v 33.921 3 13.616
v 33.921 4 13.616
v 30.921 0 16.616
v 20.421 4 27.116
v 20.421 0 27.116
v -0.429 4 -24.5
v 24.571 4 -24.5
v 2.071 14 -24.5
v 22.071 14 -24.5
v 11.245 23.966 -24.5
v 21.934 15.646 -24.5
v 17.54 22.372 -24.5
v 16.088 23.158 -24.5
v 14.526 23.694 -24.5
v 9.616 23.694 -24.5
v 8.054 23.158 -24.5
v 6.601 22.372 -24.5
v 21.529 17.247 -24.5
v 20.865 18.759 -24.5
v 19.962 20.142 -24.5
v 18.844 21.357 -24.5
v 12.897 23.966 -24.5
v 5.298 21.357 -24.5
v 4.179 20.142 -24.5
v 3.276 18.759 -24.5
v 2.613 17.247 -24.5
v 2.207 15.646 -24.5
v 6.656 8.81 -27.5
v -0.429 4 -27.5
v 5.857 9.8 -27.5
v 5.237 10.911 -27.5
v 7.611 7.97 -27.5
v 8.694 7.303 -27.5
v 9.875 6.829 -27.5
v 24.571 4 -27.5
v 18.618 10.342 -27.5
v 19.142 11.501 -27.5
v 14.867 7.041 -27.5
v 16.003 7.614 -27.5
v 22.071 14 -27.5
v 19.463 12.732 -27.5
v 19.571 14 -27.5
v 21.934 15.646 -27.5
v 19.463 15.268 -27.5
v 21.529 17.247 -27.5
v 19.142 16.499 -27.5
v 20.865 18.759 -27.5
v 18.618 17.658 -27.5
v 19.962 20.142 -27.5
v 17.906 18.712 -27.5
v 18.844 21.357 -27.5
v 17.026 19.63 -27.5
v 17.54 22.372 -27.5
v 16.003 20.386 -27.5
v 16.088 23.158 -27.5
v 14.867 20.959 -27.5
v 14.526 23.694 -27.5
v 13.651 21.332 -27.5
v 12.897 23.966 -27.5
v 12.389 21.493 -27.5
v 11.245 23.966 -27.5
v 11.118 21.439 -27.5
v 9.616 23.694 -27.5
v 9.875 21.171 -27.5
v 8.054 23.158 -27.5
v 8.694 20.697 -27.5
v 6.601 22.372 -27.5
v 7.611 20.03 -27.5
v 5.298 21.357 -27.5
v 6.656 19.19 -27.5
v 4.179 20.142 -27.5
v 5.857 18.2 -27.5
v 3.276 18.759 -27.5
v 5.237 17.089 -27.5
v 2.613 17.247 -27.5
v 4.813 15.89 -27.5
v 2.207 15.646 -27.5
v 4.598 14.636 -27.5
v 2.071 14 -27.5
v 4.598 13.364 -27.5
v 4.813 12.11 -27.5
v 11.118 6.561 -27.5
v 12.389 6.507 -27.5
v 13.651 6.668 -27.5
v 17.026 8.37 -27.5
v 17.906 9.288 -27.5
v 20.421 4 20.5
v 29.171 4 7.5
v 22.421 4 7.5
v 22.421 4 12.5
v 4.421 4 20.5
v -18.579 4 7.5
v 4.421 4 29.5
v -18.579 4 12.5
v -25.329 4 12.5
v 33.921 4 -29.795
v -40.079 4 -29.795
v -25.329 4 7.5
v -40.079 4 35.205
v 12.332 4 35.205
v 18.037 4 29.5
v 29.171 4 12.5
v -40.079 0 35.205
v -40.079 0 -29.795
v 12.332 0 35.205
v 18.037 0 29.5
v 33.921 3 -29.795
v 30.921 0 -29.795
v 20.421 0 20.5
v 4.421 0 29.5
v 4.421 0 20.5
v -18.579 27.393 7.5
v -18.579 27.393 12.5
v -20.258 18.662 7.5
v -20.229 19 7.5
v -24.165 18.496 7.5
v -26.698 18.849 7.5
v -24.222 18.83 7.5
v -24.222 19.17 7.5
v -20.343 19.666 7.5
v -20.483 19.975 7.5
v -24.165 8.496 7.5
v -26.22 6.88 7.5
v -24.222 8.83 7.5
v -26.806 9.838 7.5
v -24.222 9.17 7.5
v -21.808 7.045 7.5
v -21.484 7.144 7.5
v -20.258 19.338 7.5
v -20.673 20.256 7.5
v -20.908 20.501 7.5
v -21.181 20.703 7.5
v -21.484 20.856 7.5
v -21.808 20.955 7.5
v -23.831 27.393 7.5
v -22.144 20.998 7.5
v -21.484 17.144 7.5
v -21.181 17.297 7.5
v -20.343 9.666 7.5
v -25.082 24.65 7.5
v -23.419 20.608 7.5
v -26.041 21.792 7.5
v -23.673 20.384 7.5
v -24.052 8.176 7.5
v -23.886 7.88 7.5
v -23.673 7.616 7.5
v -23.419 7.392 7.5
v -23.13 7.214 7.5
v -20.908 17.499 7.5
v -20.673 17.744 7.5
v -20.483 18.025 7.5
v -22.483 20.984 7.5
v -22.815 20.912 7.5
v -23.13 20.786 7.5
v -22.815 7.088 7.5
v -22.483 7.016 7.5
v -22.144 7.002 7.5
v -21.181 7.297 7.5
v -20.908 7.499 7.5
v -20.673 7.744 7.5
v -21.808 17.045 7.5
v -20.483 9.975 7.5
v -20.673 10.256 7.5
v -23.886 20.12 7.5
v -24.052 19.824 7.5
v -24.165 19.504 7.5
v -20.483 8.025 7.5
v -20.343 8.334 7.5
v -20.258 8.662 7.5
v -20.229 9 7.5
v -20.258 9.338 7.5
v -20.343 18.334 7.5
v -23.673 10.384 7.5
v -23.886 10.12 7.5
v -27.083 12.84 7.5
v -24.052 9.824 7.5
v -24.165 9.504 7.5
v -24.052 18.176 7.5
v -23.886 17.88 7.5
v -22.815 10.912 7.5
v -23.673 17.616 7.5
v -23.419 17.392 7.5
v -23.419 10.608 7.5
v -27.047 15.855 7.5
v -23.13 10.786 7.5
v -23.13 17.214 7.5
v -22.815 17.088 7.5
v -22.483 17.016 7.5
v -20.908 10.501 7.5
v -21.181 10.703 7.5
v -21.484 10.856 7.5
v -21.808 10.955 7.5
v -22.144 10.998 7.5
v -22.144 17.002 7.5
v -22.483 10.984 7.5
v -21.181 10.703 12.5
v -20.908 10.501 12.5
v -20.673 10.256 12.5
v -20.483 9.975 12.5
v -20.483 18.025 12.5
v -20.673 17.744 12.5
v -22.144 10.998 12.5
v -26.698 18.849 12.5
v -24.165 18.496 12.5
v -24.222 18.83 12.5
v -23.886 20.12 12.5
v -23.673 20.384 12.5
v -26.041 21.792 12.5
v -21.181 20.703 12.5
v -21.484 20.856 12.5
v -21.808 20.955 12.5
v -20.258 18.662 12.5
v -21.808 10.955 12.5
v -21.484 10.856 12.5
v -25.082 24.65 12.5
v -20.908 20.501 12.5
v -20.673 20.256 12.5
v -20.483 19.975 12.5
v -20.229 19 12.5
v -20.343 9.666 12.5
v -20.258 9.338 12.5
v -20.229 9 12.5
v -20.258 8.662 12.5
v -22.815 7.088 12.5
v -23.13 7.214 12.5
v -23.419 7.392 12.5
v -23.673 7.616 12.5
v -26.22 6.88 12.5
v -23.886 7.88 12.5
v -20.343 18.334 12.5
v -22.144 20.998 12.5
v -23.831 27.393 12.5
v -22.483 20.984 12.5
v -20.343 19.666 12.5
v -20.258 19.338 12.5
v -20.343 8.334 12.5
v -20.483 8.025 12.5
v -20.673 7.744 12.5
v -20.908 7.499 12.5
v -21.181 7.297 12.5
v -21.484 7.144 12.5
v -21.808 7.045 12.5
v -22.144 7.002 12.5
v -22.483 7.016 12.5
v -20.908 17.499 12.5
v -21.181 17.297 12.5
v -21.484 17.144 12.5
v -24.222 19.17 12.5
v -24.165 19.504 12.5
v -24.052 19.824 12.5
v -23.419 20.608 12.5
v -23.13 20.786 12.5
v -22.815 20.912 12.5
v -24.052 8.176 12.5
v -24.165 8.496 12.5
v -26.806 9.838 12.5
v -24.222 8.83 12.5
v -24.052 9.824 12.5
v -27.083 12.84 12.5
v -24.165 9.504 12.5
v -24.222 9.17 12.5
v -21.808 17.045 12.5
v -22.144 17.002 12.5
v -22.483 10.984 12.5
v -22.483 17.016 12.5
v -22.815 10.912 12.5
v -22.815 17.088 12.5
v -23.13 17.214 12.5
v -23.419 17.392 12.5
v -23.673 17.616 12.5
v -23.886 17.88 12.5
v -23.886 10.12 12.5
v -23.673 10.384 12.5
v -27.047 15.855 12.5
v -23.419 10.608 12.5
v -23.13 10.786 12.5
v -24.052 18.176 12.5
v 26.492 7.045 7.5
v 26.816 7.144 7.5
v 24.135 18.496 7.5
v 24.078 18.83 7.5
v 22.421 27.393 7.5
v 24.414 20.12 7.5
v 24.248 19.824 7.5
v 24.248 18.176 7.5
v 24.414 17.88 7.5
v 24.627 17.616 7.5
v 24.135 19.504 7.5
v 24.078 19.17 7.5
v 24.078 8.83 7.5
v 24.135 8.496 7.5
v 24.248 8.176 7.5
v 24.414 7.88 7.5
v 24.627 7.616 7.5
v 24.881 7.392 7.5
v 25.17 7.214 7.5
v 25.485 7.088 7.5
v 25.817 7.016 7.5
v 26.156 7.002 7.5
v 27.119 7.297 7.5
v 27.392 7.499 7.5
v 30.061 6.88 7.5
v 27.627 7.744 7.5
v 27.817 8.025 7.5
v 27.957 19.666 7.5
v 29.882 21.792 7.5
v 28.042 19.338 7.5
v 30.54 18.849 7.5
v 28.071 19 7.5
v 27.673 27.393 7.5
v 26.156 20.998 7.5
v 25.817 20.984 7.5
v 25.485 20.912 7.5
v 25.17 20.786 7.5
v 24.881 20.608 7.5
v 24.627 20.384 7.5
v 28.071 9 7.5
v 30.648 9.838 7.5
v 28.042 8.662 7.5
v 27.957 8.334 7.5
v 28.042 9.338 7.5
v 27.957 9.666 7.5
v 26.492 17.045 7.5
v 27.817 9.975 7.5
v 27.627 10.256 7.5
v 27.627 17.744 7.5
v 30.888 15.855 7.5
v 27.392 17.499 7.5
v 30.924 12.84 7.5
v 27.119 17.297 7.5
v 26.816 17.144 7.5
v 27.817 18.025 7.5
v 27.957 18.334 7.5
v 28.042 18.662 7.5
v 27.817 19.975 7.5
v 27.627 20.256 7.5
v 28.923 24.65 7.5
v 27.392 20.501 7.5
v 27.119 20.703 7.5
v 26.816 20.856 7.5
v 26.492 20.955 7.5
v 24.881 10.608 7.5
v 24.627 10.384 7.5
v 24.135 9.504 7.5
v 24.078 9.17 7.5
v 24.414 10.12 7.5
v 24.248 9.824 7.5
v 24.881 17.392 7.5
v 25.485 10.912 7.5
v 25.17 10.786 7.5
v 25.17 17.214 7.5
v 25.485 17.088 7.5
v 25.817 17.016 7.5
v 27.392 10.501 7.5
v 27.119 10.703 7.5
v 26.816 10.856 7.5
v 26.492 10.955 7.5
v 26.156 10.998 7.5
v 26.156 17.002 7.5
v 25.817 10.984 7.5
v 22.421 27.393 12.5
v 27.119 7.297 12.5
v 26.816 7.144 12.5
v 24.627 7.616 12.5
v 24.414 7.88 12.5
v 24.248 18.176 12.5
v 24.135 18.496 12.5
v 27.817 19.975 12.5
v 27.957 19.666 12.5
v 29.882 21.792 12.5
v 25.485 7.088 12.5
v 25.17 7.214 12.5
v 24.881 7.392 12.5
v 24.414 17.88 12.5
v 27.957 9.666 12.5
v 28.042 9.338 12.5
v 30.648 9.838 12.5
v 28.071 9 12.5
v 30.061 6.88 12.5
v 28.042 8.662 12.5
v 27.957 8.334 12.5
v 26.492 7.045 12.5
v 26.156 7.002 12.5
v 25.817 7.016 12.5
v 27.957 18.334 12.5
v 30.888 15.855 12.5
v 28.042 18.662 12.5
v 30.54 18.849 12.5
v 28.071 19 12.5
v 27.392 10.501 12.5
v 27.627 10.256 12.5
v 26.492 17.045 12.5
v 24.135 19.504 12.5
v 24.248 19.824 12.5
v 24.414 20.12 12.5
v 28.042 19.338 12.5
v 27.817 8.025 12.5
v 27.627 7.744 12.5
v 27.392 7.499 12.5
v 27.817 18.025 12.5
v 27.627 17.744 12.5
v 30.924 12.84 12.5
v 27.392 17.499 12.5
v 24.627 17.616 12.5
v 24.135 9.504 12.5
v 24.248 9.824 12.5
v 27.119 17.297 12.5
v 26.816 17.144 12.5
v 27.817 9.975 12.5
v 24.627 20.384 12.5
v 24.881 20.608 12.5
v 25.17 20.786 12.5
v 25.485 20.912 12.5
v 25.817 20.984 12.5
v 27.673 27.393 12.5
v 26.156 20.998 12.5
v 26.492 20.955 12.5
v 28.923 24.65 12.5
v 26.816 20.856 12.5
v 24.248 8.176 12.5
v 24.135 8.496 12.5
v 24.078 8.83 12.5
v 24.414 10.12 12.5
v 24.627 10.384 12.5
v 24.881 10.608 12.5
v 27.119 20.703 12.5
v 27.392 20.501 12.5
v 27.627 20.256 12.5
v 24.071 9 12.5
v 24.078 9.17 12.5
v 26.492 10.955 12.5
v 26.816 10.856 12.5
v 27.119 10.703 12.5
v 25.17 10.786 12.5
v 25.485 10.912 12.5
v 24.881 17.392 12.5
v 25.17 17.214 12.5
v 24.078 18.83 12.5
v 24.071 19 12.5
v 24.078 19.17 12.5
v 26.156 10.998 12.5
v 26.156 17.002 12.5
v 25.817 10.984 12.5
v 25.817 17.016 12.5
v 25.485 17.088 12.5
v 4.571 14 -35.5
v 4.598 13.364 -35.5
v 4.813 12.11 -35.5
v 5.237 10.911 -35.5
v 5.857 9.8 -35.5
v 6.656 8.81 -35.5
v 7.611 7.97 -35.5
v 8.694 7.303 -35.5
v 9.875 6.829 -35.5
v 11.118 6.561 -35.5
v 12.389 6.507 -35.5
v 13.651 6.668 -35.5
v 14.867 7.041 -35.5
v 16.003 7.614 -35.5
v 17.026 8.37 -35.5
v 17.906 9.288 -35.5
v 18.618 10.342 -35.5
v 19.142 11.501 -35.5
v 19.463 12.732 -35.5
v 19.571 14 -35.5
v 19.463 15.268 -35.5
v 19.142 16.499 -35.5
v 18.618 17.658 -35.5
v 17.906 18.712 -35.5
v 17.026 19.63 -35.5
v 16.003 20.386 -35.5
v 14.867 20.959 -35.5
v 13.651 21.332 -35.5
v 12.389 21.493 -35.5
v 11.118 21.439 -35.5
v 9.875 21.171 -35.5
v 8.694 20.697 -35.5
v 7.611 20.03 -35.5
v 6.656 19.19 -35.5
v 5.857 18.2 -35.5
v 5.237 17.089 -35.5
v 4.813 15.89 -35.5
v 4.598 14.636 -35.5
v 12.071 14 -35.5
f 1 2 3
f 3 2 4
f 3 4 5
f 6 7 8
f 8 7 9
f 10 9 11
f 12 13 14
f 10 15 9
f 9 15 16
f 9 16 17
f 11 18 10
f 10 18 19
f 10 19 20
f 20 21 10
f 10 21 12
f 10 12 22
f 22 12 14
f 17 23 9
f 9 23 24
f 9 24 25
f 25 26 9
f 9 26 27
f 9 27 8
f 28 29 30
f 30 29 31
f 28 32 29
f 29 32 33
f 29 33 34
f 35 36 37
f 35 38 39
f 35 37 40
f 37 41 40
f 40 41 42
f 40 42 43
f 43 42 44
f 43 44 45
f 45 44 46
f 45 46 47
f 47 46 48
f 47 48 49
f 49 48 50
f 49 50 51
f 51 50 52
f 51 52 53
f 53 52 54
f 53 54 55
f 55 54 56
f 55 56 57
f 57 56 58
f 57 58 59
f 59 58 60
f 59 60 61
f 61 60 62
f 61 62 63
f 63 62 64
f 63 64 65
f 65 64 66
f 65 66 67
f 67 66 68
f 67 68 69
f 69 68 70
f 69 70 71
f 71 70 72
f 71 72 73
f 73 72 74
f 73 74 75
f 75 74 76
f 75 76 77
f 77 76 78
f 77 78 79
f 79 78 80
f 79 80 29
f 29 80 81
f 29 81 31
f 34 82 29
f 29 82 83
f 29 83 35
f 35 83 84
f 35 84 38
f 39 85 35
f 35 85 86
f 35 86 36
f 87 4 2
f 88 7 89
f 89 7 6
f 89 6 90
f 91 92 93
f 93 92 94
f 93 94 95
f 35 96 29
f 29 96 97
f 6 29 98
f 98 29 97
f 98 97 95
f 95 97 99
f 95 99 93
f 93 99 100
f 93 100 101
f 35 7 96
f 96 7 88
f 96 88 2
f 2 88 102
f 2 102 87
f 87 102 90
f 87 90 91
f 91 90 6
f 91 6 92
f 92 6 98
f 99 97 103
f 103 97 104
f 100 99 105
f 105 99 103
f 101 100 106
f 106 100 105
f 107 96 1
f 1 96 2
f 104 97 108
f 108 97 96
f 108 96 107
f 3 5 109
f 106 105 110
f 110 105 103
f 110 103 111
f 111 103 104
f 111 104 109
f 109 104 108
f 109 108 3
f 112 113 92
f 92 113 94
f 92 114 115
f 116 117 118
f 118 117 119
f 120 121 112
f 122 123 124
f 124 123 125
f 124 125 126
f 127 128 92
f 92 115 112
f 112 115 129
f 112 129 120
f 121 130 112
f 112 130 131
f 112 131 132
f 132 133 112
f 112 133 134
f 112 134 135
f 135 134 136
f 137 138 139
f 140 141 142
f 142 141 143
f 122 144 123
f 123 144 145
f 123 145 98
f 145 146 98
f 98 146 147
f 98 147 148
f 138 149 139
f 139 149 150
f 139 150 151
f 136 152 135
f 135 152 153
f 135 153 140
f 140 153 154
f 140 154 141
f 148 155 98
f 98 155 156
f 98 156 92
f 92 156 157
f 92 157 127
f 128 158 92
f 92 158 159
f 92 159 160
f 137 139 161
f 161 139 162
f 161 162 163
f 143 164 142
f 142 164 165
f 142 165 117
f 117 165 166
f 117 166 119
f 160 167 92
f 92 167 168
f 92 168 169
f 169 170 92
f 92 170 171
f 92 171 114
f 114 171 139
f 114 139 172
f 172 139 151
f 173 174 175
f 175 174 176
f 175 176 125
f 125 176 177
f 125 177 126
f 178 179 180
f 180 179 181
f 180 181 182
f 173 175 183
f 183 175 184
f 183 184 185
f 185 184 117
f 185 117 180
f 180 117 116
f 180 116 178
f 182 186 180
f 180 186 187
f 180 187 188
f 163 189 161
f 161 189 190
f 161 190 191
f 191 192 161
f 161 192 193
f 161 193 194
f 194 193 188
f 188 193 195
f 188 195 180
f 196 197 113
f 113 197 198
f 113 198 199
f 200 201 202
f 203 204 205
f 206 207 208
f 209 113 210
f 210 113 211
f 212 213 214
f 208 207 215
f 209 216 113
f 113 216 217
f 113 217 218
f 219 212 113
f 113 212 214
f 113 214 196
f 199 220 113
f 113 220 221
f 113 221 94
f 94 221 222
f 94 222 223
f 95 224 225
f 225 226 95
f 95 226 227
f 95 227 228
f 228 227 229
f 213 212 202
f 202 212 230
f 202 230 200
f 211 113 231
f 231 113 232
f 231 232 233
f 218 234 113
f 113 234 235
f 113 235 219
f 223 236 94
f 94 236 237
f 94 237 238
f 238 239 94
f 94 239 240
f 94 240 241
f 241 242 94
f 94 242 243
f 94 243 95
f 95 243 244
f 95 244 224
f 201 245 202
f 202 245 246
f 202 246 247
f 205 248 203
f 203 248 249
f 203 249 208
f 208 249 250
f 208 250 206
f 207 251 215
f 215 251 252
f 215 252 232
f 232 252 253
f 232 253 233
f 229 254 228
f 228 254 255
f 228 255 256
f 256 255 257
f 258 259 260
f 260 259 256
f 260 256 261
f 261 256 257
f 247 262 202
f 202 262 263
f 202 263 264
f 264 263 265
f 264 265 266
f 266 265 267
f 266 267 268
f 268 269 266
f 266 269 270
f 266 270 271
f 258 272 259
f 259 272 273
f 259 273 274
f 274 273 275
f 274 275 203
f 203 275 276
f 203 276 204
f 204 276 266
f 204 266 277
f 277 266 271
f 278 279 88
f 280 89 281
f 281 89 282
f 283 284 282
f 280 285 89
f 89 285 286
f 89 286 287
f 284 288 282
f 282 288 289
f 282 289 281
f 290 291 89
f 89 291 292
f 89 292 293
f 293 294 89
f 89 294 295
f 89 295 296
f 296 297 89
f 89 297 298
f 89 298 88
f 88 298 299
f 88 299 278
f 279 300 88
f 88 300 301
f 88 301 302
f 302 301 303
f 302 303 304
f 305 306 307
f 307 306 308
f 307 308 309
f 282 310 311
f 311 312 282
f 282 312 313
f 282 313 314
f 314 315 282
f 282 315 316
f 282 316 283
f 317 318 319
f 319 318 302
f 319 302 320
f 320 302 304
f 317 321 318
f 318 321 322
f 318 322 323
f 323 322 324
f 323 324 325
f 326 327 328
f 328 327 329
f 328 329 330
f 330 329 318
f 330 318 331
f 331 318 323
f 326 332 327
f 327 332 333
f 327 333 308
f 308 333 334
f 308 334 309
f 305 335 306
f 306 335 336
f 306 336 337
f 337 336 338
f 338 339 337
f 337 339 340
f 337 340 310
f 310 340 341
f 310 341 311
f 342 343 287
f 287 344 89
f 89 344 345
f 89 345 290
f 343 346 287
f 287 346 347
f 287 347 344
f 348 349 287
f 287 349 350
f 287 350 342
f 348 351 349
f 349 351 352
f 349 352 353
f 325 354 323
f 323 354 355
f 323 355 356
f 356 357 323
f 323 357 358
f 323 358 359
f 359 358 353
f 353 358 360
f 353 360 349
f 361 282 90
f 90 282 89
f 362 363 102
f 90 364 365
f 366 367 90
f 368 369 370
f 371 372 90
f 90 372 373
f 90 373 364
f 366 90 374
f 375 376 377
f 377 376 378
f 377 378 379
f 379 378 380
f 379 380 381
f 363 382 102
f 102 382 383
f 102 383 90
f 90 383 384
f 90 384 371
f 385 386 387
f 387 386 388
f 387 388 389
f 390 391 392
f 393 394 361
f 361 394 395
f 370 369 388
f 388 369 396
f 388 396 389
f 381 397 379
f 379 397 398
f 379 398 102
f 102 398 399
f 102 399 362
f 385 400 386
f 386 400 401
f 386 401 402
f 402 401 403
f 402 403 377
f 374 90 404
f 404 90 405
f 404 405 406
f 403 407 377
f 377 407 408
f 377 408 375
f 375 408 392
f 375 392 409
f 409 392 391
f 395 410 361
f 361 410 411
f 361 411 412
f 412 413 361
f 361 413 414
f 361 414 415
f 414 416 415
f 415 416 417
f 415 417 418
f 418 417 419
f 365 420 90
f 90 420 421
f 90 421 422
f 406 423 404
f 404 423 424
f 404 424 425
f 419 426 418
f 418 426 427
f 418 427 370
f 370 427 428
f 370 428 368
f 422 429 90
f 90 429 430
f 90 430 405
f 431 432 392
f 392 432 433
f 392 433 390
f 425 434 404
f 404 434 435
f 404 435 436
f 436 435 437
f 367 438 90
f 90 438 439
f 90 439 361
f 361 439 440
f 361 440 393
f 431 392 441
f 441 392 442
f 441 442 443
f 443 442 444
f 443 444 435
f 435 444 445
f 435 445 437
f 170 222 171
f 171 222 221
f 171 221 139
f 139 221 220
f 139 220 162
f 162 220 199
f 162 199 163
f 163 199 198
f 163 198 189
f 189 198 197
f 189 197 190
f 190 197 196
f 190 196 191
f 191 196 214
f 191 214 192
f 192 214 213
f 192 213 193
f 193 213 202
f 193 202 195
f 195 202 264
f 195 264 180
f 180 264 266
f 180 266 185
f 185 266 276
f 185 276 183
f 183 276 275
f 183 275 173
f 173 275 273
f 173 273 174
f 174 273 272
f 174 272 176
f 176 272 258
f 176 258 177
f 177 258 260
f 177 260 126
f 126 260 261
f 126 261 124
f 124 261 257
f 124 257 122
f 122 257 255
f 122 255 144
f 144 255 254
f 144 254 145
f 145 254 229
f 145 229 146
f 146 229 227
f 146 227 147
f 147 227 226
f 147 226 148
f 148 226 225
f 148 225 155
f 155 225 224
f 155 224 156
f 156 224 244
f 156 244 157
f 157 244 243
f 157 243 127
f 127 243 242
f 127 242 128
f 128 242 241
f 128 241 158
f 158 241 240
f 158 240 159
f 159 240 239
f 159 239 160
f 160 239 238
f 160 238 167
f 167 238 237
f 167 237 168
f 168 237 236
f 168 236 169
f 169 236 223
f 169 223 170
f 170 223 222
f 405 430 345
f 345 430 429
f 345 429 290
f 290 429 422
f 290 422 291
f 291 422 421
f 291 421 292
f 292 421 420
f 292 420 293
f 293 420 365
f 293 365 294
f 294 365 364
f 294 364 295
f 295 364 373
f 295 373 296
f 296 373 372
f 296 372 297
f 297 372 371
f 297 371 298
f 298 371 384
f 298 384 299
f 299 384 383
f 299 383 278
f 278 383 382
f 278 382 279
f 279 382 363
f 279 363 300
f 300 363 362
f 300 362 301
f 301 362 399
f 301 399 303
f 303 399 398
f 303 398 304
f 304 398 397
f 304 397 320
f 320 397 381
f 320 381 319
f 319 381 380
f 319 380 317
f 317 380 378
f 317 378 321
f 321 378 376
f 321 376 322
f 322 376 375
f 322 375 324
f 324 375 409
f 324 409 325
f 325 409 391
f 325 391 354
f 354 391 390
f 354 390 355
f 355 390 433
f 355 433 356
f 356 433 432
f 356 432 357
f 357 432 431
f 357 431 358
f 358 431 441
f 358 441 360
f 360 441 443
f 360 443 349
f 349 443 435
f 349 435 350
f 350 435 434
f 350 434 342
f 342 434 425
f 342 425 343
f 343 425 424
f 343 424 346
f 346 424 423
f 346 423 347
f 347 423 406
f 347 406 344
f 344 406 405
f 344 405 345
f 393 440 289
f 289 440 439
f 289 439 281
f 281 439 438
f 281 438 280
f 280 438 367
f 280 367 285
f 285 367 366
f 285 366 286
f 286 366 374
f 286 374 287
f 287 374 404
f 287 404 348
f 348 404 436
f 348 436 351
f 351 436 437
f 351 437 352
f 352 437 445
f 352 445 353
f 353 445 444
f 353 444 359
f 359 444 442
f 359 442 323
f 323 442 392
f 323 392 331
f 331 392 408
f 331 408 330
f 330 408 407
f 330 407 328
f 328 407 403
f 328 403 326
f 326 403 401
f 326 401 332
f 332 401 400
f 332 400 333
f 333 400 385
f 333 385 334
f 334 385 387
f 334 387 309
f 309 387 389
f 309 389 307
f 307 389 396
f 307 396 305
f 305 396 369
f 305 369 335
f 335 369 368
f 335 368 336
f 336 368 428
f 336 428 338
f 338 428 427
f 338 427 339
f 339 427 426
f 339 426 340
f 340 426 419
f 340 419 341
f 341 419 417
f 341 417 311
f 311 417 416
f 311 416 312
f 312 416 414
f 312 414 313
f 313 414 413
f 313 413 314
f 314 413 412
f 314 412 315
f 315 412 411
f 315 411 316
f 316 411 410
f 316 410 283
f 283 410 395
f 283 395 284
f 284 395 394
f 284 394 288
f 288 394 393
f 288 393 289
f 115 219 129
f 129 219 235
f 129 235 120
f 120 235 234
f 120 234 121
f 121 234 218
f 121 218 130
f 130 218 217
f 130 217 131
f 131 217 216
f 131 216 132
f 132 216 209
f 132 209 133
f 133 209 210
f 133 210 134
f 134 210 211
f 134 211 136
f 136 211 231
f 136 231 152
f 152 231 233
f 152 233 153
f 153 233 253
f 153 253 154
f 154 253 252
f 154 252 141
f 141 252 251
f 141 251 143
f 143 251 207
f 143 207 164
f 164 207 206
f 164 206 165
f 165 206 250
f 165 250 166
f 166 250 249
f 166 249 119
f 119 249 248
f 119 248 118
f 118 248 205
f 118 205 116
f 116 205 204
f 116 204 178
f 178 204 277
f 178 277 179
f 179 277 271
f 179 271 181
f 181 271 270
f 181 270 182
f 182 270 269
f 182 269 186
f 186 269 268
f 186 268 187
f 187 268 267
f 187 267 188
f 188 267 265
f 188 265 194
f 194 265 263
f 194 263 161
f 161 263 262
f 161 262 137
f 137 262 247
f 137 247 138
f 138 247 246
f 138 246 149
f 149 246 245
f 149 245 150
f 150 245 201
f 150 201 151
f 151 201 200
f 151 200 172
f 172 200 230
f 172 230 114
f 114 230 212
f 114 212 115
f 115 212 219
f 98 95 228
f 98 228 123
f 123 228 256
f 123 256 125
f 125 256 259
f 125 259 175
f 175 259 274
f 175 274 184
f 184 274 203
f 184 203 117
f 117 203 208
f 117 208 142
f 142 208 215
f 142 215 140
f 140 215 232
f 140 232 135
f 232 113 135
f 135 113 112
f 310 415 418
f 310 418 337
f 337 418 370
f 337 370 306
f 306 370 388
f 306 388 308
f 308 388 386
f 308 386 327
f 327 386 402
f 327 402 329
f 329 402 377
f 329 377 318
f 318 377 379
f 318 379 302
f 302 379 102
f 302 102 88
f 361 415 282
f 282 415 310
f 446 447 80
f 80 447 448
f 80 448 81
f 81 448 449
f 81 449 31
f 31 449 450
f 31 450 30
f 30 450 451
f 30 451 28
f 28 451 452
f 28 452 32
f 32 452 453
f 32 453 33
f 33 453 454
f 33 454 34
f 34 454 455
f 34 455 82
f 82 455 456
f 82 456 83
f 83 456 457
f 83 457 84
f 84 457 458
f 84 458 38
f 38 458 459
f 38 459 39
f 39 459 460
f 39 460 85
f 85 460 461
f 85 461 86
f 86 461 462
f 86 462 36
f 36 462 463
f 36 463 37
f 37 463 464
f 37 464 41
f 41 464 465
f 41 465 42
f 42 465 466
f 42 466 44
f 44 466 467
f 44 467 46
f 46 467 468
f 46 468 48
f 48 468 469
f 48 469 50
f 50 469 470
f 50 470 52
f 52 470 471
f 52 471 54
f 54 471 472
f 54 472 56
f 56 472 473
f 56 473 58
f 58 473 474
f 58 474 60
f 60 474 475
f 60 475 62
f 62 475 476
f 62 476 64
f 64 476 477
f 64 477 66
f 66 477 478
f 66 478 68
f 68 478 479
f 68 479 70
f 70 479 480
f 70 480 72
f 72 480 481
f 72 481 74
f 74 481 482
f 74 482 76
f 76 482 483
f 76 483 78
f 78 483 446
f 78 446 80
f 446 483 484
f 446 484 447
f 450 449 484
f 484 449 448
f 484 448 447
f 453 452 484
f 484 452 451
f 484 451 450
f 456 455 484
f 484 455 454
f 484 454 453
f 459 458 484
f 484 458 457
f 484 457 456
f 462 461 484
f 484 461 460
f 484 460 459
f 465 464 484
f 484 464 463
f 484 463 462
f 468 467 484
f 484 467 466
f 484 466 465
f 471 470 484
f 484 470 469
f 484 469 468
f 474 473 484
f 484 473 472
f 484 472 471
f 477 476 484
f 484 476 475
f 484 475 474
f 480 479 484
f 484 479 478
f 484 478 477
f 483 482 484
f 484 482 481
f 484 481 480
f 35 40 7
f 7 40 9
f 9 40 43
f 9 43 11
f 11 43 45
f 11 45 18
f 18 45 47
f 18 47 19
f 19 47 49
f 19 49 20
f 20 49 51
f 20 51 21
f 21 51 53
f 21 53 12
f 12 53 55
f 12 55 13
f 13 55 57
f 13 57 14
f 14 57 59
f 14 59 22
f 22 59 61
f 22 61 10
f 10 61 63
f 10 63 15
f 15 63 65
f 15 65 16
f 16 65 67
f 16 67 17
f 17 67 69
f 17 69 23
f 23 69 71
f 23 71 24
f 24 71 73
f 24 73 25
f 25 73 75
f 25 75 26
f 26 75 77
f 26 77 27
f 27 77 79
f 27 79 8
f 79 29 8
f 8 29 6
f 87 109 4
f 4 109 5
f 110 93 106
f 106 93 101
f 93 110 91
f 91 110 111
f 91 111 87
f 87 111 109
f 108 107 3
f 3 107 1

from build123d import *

# Parameters (mm, degrees)
SALIENTE_EXTRUIR1_DEPTH = 4
CROQUIS2_W              = 6.75
CROQUIS2_H              = 5
SALIENTE_EXTRUIR2_DEPTH = 18
CROQUIS3_R              = 2
CORTAR_EXTRUIR1_DEPTH   = 10
SALIENTE_EXTRUIR3_DEPTH = 5
CROQUIS6_W              = 25
CROQUIS6_H              = 3
SALIENTE_EXTRUIR4_DEPTH = 20
CROQUIS7_R              = 7.5
SALIENTE_EXTRUIR5_DEPTH = 8
CORTAR_EXTRUIR2_DEPTH   = 3
CORTAR_EXTRUIR3_REACH   = 6
CROQUIS9_W              = 16
CROQUIS9_H              = 9
CHAFL_N1_SIZE           = 3


with BuildPart() as part:
    # Croquis1 → Saliente-Extruir1 (new body)
    with BuildSketch(Plane(origin=(0, 0, 0), x_dir=(1, 0, 0), z_dir=(0, 1, 0))):
        Polygon((12.331887662, -35.204744953), (33.9207519, -13.615880715), (33.9207519, 29.795255047), (-40.0792481, 29.795255047), (-40.0792481, -35.204744953), align=None)
    extrude(amount=SALIENTE_EXTRUIR1_DEPTH)

    # Croquis2 → Saliente-Extruir2 (add)
    with BuildSketch(Plane(origin=(0, 4, 0), x_dir=(1, 0, 0), z_dir=(0, 1, 0))):
        with Locations((-21.9542481, -10)):
            Rectangle(CROQUIS2_W, CROQUIS2_H)
        with Locations((25.7957519, -10)):
            Rectangle(CROQUIS2_W, CROQUIS2_H)
    extrude(amount=SALIENTE_EXTRUIR2_DEPTH)

    # Croquis3 → Cortar-Extruir1 (cut)
    with BuildSketch(Plane.XY.offset(12.5)):
        with Locations((-22.2292481, 9)):
            Circle(CROQUIS3_R)
        with Locations((-22.2292481, 19)):
            Circle(CROQUIS3_R)
        with Locations((26.0707519, 19)):
            Circle(CROQUIS3_R)
        with Locations((26.0707519, 9)):
            Circle(CROQUIS3_R)
    extrude(amount=-CORTAR_EXTRUIR1_DEPTH, mode=Mode.SUBTRACT)

    # Croquis5 → Saliente-Extruir3 (add)
    with BuildSketch(Plane.XY.offset(12.5)):
        with BuildLine():
            Line((-25.3292481, 4), (-25.3292481, 22))
            Line((-25.3292481, 22), (-18.5792481, 22))
            Line((-18.5792481, 22), (-18.5792481, 27.393443103))
            Line((-18.5792481, 27.393443103), (-23.831494252, 27.393443103))
            ThreePointArc((-23.831494252, 27.393443103), (-27.046864835, 15.854637612), (-25.3292481, 4))
        make_face()
        with BuildLine():
            Line((29.1707519, 4), (29.1707519, 22))
            Line((29.1707519, 22), (22.4207519, 22))
            Line((22.4207519, 22), (22.4207519, 27.393443103))
            Line((22.4207519, 27.393443103), (27.672998052, 27.393443103))
            ThreePointArc((27.672998052, 27.393443103), (30.888368635, 15.854637612), (29.1707519, 4))
        make_face()
    extrude(amount=-SALIENTE_EXTRUIR3_DEPTH)

    # Croquis6 → Saliente-Extruir4 (add)
    with BuildSketch(Plane(origin=(0, 4, 0), x_dir=(1, 0, 0), z_dir=(0, 1, 0))):
        with Locations((12.0707519, 26)):
            Rectangle(CROQUIS6_W, CROQUIS6_H)
    extrude(amount=SALIENTE_EXTRUIR4_DEPTH)

    # Croquis7 → Saliente-Extruir5 (add)
    with BuildSketch(Plane(origin=(0, 0, -27.5), x_dir=(-1, 0, 0), z_dir=(0, 0, -1))):
        with Locations((-12.0707519, 14)):
            Circle(CROQUIS7_R)
    extrude(amount=SALIENTE_EXTRUIR5_DEPTH)

    # Croquis8 → Cortar-Extruir2 (cut)
    with BuildSketch(Plane(origin=(0, 0, -27.5), x_dir=(-1, 0, 0), z_dir=(0, 0, -1))):
        with BuildLine():
            Line((-24.5707519, 24), (-24.5707519, 4))
            Line((-24.5707519, 4), (-22.0707519, 14))
            ThreePointArc((-22.0707519, 14), (-19.141819712, 21.071067812), (-12.0707519, 24))
            Line((-12.0707519, 24), (-24.5707519, 24))
        make_face()
        with BuildLine():
            Line((0.4292481, 24), (-12.0707519, 24))
            ThreePointArc((-12.0707519, 24), (-4.999684088, 21.071067812), (-2.0707519, 14))
            Line((-2.0707519, 14), (0.4292481, 4))
            Line((0.4292481, 4), (0.4292481, 24))
        make_face()
    extrude(amount=-CORTAR_EXTRUIR2_DEPTH, mode=Mode.SUBTRACT)

    # Croquis9 → Cortar-Extruir3 (cut, up to next)
    with BuildSketch(Plane(origin=(0, 4, 0), x_dir=(1, 0, 0), z_dir=(0, 1, 0)), mode=Mode.PRIVATE) as cortar_extruir3_sk1:
        with Locations((12.4207519, -25)):
            Rectangle(CROQUIS9_W, CROQUIS9_H)
    cortar_extruir3_tool1 = extrude(cortar_extruir3_sk1.sketch, amount=-CORTAR_EXTRUIR3_REACH, mode=Mode.PRIVATE) & part.part
    add(cortar_extruir3_tool1.solids().sort_by_distance((12.420752, 4, 25))[0], mode=Mode.SUBTRACT)

    # Chaflán1
    chafl_n1_edges = [part.edges().sort_by_distance(p)[0] for p in [
        (33.9207519, 0, -8.089687166),
    ]]
    chamfer(chafl_n1_edges, length=CHAFL_N1_SIZE)


solid = part.part
